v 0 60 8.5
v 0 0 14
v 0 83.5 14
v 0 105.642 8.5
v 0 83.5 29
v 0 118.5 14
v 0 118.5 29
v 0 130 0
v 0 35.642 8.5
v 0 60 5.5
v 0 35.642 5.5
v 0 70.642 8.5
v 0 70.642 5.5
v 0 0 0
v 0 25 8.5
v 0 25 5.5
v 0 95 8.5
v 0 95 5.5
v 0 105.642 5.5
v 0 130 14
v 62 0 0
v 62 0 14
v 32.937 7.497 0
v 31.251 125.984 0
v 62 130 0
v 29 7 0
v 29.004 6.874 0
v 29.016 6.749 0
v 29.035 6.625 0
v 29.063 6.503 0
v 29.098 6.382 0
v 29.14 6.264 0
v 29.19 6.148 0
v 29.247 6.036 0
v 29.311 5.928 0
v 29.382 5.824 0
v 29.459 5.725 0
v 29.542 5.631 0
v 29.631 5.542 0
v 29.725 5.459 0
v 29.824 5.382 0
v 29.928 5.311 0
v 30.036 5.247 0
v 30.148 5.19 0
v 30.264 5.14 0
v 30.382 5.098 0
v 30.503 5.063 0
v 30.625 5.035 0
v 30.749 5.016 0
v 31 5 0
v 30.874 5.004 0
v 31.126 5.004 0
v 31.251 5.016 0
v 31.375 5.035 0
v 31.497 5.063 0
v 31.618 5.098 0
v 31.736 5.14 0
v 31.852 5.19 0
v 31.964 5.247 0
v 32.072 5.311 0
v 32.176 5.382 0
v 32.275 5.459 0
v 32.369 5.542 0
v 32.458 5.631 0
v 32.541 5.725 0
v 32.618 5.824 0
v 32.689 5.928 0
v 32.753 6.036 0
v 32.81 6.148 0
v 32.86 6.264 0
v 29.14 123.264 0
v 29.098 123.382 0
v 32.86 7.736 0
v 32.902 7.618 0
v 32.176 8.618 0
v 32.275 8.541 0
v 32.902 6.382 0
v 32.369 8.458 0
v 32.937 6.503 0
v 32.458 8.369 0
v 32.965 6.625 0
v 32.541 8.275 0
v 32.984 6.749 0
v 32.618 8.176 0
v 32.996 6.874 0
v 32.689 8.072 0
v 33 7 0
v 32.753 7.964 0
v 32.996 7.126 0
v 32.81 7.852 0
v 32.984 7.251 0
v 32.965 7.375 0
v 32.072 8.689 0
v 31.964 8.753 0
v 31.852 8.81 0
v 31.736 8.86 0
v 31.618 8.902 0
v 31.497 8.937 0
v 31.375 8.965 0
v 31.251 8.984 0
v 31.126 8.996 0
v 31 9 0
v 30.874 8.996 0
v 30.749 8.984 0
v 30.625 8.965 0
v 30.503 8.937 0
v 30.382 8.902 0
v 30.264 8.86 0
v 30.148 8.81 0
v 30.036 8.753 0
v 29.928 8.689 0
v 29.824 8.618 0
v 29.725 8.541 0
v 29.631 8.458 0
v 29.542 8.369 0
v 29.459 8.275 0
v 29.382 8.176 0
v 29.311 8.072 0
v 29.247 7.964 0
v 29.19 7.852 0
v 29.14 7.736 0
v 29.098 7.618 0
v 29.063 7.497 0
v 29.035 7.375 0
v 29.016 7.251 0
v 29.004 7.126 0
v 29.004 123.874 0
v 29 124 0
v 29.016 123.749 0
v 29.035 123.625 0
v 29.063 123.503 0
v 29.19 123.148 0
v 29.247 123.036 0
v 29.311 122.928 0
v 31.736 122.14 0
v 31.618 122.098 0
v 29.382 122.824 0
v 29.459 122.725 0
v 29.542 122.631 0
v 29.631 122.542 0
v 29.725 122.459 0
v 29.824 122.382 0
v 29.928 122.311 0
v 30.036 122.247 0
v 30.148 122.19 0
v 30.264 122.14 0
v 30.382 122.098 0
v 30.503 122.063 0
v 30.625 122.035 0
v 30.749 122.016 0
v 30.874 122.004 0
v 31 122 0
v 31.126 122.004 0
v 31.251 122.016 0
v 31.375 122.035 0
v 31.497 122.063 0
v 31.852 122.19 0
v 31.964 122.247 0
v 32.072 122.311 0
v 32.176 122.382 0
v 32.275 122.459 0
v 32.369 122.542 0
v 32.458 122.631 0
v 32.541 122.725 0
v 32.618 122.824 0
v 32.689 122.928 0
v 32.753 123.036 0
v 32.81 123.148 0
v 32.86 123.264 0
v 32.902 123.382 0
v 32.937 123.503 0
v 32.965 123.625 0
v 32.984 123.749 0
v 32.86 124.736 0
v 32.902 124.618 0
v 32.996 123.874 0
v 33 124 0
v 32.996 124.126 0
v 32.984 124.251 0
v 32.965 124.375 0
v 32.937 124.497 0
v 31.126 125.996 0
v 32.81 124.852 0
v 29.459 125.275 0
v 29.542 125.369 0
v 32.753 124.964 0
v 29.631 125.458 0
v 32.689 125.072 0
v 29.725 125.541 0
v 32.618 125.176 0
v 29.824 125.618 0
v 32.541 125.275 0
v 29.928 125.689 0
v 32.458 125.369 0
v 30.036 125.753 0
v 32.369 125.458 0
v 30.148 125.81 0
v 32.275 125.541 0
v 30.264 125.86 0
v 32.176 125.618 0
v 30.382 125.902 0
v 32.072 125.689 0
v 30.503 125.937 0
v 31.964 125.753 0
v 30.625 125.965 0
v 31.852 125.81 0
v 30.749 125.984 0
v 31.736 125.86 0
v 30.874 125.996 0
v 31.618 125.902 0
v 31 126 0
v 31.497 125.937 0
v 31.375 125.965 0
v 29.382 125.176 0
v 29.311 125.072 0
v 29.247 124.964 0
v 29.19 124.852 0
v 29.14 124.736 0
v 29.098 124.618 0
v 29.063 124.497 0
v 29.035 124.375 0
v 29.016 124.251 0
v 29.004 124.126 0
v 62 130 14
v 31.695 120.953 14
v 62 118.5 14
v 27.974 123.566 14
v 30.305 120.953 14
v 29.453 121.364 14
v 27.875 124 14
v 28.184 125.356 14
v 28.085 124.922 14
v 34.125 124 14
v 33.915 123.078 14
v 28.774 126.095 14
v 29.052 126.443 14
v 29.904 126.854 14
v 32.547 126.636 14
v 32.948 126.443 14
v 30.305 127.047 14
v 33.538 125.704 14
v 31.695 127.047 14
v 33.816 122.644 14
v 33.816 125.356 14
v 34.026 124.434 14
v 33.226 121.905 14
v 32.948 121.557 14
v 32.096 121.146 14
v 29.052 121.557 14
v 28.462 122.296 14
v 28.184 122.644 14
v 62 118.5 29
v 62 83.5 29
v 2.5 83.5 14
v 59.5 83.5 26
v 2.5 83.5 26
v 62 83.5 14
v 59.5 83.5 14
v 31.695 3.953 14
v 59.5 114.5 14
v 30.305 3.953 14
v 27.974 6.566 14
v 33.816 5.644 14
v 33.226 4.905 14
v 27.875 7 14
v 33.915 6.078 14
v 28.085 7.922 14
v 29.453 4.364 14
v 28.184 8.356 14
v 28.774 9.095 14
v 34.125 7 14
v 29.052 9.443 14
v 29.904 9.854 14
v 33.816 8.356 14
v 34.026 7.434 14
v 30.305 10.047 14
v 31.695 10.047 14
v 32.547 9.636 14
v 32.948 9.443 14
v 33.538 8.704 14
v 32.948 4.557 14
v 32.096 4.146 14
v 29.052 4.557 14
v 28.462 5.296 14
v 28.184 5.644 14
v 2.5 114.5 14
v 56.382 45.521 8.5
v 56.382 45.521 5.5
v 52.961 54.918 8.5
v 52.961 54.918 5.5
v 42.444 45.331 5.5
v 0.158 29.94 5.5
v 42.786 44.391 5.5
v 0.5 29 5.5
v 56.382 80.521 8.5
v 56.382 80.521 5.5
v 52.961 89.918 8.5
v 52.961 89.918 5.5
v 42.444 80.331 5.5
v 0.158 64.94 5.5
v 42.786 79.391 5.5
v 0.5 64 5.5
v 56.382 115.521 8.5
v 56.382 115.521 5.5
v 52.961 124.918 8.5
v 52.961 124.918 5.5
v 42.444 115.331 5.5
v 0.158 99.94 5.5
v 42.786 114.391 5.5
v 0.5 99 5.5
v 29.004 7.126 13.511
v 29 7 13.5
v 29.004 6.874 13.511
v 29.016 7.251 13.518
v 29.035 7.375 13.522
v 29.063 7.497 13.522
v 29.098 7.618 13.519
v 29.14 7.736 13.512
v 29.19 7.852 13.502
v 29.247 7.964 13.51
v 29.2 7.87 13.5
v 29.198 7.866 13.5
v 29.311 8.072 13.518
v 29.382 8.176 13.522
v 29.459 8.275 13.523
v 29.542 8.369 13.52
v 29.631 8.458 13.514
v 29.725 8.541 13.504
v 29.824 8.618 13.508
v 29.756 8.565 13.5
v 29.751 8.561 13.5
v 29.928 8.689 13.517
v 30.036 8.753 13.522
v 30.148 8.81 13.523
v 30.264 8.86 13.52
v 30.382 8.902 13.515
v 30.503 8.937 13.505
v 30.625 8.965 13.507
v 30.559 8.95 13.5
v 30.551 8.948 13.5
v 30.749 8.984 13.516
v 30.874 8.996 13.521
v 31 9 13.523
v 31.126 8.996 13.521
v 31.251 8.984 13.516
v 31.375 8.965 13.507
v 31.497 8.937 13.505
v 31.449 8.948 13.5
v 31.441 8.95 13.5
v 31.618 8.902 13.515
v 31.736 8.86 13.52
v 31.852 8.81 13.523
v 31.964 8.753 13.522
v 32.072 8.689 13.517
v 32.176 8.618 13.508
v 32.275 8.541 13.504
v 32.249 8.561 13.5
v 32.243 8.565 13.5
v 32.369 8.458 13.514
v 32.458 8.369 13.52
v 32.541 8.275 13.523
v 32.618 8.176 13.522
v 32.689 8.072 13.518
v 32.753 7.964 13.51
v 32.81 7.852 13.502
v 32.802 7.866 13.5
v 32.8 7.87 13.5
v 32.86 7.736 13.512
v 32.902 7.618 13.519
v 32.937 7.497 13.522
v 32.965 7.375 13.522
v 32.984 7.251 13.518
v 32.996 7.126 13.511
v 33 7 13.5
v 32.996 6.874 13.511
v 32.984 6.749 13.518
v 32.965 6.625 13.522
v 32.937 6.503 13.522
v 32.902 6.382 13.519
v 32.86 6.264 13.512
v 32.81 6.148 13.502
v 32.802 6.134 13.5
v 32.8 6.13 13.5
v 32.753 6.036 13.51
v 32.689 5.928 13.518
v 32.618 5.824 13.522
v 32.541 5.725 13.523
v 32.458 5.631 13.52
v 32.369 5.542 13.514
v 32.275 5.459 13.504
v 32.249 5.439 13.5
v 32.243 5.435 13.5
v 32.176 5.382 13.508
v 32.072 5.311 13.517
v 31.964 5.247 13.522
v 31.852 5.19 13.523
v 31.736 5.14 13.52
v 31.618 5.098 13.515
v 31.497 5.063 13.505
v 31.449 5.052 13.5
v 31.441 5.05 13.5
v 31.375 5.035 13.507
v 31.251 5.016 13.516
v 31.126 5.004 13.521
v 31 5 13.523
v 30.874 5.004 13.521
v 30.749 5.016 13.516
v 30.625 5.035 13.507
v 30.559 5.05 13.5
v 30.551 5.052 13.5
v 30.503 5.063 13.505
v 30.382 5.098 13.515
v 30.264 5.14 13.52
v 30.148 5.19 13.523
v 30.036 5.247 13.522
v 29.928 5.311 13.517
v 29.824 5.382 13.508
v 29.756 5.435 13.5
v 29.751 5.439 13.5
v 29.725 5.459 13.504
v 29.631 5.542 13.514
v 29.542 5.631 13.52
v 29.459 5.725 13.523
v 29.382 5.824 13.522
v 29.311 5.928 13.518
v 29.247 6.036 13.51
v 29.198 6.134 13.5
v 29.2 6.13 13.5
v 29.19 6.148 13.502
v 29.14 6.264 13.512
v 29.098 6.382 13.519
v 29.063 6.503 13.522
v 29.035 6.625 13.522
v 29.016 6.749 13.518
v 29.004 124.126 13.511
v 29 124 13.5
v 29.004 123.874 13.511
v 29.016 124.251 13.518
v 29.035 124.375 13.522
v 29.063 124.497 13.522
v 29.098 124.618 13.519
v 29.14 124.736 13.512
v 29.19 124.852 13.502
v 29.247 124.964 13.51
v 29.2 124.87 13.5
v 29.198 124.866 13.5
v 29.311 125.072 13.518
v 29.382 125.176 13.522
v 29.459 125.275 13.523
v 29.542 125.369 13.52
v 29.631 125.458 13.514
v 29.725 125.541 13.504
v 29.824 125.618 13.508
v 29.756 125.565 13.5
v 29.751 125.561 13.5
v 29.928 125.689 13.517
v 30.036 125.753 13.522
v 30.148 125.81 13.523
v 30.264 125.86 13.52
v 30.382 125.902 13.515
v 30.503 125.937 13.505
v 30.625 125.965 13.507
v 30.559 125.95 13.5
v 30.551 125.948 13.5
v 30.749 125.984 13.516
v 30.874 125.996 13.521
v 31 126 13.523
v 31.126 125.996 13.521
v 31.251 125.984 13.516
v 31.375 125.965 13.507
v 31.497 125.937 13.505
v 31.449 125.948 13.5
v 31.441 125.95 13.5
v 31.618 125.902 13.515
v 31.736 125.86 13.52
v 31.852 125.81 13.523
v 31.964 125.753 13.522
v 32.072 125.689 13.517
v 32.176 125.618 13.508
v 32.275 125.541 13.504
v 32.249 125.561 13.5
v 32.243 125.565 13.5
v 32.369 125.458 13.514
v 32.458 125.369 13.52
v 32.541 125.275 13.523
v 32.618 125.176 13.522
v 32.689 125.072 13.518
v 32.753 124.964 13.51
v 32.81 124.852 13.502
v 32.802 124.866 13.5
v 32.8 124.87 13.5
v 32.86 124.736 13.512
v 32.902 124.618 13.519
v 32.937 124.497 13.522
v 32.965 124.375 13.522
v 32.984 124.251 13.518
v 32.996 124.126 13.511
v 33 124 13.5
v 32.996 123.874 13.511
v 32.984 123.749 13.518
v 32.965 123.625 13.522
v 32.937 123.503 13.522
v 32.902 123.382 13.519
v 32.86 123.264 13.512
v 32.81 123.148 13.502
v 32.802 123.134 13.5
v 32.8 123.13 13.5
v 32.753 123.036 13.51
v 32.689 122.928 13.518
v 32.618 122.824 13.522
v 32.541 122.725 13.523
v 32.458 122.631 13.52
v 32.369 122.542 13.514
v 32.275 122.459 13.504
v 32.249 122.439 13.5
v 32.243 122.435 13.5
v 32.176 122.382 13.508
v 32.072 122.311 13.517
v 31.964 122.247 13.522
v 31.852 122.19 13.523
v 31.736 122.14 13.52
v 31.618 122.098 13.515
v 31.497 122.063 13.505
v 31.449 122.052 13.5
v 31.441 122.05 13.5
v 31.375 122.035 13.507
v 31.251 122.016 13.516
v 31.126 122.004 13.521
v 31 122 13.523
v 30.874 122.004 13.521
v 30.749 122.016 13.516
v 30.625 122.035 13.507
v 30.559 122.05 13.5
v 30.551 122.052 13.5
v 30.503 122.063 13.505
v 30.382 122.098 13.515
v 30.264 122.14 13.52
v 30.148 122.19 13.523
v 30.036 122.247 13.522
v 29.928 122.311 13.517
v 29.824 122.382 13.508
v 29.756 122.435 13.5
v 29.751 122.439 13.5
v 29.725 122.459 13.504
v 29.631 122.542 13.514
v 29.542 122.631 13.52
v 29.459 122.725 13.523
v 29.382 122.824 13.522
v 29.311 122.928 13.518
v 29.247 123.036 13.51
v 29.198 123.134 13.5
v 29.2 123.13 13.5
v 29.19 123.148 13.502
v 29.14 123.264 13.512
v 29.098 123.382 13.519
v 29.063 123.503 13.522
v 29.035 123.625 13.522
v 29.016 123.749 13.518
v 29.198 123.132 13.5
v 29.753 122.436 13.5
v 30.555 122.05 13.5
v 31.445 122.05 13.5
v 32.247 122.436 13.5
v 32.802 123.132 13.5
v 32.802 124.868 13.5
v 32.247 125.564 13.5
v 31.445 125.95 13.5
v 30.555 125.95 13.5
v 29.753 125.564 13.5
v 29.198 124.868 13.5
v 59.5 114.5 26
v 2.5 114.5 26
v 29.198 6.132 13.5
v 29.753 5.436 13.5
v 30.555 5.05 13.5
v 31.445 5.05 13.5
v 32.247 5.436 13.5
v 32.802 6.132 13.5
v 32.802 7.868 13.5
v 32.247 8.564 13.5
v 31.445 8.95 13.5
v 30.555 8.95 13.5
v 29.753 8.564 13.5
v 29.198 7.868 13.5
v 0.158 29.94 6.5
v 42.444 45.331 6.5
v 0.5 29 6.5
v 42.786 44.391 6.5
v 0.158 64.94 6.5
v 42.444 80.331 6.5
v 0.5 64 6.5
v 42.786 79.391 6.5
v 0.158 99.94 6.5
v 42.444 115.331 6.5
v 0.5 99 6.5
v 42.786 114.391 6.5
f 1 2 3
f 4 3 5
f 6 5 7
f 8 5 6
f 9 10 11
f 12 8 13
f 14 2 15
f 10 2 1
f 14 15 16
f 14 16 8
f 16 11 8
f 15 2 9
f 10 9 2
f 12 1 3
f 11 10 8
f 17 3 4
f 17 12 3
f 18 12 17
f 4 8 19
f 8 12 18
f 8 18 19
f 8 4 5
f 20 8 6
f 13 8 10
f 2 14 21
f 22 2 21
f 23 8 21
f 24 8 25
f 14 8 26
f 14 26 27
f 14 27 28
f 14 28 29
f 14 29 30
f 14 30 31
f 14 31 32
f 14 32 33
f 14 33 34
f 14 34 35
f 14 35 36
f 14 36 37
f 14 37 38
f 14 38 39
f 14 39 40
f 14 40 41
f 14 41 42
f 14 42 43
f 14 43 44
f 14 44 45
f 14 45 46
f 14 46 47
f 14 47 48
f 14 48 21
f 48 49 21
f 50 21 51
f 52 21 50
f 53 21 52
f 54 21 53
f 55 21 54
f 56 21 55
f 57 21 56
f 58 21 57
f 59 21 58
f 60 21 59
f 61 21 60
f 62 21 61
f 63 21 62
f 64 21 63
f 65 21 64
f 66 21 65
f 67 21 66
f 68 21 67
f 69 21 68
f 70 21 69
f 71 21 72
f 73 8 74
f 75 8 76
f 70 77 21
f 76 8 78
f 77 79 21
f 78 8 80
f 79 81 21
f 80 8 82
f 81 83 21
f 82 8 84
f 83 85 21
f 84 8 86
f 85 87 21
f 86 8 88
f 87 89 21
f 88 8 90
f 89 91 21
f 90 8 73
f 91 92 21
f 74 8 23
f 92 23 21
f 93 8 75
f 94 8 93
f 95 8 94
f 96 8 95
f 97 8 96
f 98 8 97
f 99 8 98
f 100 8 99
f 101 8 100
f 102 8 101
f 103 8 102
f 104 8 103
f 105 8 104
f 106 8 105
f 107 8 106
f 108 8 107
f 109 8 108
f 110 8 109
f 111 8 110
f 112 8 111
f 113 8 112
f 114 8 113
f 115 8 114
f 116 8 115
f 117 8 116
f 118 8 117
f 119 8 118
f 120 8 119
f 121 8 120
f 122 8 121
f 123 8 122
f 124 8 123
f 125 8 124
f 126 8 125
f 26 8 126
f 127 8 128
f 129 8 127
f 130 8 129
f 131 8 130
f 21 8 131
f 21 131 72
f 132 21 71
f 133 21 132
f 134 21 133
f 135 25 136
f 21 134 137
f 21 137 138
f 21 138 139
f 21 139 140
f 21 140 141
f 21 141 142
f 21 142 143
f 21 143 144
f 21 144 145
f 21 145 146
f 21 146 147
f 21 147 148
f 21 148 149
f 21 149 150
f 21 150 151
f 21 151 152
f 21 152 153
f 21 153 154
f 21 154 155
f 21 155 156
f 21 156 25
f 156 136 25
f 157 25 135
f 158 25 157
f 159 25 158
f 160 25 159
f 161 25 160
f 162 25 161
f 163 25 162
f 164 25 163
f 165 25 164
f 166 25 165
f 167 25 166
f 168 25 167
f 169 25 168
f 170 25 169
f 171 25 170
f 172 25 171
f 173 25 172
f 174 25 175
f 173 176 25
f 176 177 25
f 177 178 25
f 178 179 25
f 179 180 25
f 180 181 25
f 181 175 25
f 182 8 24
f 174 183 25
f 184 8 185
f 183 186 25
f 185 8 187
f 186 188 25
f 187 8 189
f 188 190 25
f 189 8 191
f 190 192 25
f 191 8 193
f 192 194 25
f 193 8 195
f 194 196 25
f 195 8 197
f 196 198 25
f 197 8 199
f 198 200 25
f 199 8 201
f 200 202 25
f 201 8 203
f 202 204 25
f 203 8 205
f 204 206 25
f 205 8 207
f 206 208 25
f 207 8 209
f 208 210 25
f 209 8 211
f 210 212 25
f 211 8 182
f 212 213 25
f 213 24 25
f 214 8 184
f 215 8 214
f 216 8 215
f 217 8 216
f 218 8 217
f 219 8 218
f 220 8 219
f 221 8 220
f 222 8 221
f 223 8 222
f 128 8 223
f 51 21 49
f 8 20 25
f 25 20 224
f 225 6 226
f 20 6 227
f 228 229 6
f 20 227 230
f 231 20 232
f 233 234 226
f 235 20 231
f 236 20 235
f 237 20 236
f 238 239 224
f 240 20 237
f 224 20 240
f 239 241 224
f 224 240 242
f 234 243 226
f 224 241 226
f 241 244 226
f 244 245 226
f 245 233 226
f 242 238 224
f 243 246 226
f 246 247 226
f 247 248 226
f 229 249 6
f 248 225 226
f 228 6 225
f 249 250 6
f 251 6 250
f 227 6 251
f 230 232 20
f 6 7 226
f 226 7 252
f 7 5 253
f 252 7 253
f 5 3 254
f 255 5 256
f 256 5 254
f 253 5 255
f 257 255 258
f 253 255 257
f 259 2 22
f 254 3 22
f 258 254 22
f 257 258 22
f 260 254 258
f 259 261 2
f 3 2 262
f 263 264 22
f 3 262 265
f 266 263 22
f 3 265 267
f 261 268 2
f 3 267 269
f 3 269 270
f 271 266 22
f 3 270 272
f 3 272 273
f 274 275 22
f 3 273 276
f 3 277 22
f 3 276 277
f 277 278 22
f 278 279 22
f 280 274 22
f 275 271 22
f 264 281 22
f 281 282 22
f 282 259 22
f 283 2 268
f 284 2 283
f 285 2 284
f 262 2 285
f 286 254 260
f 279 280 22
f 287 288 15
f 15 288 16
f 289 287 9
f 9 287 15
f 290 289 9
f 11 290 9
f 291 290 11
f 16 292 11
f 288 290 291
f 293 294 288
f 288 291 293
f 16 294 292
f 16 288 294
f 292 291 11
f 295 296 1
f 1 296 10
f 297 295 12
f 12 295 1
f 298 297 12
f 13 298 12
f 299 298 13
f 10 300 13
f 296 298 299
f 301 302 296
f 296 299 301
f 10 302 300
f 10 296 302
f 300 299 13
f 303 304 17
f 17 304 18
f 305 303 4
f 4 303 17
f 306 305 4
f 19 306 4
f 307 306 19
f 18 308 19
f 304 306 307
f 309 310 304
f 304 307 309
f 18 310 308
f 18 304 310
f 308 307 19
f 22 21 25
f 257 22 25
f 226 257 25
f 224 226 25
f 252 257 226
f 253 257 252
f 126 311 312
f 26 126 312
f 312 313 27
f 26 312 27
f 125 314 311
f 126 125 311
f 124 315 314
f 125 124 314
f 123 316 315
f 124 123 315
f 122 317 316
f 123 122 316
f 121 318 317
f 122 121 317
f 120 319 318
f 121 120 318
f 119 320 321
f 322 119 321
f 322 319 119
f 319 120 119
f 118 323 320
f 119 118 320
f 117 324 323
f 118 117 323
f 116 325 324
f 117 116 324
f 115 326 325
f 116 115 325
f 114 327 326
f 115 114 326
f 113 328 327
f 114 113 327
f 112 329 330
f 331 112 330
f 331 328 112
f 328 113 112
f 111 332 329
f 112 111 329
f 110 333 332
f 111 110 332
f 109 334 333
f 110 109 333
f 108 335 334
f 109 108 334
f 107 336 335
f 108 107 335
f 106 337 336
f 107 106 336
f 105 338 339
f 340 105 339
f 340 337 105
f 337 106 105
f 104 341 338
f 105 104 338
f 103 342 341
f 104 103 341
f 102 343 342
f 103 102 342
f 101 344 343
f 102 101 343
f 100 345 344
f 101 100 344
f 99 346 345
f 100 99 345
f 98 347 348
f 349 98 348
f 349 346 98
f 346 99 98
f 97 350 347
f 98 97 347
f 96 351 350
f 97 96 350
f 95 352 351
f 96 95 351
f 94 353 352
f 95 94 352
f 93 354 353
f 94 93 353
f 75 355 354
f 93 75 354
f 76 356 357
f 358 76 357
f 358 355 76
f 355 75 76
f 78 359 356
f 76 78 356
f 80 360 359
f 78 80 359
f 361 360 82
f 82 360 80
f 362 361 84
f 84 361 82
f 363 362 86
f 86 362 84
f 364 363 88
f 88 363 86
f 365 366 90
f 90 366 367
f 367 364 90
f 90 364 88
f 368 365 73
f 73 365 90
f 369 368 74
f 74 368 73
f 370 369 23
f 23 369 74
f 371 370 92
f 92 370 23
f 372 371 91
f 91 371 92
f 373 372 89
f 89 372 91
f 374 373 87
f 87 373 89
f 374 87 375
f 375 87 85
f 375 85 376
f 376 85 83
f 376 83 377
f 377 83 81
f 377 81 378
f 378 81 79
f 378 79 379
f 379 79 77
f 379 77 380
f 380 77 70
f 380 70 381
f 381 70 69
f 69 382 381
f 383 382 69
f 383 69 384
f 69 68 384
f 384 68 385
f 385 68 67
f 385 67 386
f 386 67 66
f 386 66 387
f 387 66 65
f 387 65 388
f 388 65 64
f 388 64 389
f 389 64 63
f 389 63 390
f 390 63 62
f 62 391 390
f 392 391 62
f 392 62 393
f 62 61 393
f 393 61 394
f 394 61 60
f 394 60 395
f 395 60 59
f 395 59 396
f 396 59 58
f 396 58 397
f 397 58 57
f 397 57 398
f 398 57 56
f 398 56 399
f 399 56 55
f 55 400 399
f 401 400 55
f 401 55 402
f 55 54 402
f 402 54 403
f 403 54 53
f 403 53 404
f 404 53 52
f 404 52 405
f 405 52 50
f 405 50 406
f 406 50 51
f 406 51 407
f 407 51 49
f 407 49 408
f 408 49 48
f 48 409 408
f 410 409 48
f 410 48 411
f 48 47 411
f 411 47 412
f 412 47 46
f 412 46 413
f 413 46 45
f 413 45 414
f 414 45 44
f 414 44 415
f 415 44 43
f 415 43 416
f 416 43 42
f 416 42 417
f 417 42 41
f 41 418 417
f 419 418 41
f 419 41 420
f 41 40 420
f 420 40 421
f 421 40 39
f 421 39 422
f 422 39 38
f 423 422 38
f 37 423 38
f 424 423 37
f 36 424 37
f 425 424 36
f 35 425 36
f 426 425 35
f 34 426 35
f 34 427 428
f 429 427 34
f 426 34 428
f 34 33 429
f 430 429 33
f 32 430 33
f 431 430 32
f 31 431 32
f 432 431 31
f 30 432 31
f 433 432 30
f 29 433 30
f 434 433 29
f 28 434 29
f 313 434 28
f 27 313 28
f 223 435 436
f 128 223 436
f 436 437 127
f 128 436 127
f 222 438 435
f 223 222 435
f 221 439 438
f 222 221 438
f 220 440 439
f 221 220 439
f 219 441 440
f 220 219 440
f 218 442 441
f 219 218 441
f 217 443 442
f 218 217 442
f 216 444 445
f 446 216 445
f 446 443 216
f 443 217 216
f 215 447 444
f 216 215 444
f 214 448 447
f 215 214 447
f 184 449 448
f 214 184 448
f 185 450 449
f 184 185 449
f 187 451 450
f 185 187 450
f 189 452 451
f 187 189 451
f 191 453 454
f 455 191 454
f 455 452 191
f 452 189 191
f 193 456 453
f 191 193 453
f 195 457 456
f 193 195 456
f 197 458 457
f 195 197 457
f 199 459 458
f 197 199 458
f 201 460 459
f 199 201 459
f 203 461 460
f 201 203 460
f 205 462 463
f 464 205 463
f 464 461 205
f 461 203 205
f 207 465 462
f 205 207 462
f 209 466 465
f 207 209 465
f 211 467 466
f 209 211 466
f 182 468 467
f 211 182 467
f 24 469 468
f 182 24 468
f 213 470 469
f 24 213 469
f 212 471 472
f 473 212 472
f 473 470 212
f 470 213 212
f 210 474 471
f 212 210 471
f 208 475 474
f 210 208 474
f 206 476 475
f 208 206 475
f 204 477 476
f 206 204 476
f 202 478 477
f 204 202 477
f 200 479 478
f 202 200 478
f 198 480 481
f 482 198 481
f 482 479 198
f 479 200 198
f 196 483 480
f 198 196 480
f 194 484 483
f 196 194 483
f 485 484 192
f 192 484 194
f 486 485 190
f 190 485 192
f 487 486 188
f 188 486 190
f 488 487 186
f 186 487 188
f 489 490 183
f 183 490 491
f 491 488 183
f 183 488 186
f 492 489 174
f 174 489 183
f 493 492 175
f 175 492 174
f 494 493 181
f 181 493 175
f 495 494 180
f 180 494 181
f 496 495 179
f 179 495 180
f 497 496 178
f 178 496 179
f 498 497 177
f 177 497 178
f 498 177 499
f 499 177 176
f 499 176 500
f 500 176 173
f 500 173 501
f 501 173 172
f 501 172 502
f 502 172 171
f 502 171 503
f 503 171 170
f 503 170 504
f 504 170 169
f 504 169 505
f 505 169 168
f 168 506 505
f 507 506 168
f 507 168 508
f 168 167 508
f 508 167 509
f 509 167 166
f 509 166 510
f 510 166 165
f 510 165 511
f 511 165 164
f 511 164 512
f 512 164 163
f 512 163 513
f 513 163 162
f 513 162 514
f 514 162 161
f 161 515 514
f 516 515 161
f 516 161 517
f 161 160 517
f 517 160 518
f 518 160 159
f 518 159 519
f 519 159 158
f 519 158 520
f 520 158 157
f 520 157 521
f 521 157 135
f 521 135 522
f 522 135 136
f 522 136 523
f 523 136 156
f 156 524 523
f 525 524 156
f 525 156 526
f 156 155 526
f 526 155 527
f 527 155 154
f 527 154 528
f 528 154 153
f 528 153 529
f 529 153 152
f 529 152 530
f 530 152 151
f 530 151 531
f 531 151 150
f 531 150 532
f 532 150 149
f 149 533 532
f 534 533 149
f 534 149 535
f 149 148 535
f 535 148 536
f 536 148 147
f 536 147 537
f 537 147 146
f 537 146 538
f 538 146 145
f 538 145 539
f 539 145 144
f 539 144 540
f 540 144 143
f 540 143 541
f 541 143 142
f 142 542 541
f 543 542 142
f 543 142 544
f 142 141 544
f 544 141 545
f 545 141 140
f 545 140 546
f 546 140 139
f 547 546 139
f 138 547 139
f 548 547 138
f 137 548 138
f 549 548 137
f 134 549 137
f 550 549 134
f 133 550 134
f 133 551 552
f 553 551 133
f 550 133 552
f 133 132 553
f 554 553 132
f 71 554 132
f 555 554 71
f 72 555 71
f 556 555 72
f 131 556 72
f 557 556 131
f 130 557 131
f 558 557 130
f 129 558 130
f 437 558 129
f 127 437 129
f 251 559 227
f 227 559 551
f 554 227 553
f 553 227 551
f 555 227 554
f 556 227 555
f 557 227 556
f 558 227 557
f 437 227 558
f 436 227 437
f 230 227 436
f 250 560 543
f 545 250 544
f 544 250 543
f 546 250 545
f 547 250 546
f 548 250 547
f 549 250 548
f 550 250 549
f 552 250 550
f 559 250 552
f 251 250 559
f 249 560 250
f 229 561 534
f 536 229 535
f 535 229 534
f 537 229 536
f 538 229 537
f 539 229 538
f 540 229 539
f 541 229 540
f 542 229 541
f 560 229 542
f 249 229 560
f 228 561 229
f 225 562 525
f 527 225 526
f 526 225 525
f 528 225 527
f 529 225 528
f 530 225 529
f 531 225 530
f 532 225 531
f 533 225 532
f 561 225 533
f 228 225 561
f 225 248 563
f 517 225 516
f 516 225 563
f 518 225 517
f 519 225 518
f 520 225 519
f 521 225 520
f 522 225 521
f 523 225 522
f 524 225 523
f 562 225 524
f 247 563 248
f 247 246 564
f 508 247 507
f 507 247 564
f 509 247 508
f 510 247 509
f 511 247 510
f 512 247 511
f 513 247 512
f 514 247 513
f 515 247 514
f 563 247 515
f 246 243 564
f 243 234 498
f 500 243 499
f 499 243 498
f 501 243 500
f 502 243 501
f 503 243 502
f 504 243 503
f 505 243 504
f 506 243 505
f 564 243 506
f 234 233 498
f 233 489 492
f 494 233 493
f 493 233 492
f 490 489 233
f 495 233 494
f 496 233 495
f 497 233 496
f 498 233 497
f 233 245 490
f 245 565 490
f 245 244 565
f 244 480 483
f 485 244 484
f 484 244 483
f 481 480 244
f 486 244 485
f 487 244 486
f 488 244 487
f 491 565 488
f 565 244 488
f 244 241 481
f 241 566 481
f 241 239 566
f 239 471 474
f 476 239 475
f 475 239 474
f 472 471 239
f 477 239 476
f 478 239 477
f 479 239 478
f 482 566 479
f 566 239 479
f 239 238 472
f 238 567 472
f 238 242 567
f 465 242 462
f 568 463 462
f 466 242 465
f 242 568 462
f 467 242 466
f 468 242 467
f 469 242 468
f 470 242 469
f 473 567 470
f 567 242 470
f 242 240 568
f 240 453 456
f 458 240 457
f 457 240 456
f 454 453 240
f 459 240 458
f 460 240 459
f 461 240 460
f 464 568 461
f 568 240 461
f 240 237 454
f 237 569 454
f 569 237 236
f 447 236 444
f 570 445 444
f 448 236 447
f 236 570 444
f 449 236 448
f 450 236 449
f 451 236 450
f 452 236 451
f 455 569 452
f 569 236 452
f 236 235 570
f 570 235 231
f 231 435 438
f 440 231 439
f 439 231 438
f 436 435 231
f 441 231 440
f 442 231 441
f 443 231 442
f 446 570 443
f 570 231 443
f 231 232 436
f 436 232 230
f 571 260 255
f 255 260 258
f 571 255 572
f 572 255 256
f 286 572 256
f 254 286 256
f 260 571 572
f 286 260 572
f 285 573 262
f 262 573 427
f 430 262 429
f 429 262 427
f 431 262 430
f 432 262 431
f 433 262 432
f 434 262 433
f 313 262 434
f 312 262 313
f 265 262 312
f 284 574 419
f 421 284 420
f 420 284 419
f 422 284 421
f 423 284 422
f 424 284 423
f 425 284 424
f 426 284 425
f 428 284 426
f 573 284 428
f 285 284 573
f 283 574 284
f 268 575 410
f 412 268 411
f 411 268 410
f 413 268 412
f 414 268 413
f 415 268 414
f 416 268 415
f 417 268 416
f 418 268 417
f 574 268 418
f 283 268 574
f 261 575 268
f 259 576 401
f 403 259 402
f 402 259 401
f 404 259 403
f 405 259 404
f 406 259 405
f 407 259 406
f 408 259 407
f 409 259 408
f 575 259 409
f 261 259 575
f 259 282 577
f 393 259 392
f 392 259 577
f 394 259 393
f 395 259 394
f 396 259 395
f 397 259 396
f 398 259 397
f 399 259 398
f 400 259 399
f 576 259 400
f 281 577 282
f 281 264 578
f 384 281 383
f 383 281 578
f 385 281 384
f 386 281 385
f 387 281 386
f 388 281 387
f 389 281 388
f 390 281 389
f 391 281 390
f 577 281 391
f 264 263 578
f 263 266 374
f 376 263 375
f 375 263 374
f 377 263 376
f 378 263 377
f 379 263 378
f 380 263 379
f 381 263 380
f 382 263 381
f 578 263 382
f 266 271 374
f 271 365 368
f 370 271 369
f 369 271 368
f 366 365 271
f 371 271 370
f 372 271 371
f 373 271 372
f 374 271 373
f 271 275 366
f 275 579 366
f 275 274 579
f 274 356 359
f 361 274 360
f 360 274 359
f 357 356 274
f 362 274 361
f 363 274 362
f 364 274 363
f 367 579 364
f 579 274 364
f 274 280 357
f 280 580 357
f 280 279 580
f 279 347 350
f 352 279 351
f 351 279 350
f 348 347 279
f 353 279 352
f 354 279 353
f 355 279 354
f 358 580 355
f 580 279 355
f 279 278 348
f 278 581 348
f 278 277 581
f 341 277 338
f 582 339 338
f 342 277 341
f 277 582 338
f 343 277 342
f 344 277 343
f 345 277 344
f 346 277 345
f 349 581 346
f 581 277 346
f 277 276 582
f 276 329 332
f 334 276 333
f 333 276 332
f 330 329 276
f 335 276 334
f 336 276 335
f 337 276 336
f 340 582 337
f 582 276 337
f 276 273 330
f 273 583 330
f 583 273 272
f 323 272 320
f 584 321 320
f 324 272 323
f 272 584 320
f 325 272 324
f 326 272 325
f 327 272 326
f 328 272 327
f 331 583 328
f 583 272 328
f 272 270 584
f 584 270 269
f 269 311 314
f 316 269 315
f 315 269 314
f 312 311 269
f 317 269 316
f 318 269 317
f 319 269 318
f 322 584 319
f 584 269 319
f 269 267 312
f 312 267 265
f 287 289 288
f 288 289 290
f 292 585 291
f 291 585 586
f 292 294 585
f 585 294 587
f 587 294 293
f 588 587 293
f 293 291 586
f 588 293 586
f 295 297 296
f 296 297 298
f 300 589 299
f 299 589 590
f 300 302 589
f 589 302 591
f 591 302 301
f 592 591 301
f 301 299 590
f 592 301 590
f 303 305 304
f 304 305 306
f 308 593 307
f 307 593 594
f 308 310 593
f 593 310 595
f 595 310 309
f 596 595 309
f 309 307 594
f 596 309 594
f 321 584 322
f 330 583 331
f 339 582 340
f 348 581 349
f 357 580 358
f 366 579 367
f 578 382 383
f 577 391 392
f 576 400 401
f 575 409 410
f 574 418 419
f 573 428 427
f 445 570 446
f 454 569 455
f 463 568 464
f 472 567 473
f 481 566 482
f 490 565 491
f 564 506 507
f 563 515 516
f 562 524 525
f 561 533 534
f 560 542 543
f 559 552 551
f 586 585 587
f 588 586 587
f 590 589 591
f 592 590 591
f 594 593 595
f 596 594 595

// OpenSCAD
//118 62 14
//10 1MM 3



	module groove(){
	rotate(20, 0, 0)
	//scale([45, 1, 1])
	cube ([45, 1, 1]);
	}//groove module

	module keyhole(){ 
	rotate(20, 0, 0)
	//scale([60, 10, 3])
	cube ([60, 10, 3]);
	}//keyhold module

	module drillhole(){
	translate([31, 7,7 ])
	cylinder(h=16,r=2,$fn=100, center=true);
	translate([31,7,13.5])
	cylinder(h1=3,r1=2, r2=4.25);
	}

	module base(){
	//hull (){
	cube ([62, 130, 14]);
		/*translate([1,1,0])
		cylinder(h=14,r=2);
		translate([1,129,0])
		cylinder(h=14,r=2);
		translate([61,129,0])
		cylinder(h=14,r=2);
		translate([61,1,0])
		cylinder(h=14,r=2);*/
	//}//end hull
	}//end base


union (){
difference (){
base();

translate([0,25,5.5])
	keyhole();

translate([0,60,5.5])
	keyhole();

translate([0,95,5.5])
	keyhole();

	drillhole();
translate([0, 117, 0])
	drillhole();
}//difference

//grooves
color ("cyan", a=1.0)
translate([.5,29,5.5])
	groove();
translate([.5,64,5.5])
	groove();
translate([.5,99,5.5])
	groove();


//holder section

difference (){
color ("green", a=1.0)
translate([0 , 83.5, 13])
scale([62, 35, 16])
	cube (1, 1, 1);

translate([2.5 , 81.5, 13])
	cube ([57, 33, 13]);
}//end difference




}//end union
